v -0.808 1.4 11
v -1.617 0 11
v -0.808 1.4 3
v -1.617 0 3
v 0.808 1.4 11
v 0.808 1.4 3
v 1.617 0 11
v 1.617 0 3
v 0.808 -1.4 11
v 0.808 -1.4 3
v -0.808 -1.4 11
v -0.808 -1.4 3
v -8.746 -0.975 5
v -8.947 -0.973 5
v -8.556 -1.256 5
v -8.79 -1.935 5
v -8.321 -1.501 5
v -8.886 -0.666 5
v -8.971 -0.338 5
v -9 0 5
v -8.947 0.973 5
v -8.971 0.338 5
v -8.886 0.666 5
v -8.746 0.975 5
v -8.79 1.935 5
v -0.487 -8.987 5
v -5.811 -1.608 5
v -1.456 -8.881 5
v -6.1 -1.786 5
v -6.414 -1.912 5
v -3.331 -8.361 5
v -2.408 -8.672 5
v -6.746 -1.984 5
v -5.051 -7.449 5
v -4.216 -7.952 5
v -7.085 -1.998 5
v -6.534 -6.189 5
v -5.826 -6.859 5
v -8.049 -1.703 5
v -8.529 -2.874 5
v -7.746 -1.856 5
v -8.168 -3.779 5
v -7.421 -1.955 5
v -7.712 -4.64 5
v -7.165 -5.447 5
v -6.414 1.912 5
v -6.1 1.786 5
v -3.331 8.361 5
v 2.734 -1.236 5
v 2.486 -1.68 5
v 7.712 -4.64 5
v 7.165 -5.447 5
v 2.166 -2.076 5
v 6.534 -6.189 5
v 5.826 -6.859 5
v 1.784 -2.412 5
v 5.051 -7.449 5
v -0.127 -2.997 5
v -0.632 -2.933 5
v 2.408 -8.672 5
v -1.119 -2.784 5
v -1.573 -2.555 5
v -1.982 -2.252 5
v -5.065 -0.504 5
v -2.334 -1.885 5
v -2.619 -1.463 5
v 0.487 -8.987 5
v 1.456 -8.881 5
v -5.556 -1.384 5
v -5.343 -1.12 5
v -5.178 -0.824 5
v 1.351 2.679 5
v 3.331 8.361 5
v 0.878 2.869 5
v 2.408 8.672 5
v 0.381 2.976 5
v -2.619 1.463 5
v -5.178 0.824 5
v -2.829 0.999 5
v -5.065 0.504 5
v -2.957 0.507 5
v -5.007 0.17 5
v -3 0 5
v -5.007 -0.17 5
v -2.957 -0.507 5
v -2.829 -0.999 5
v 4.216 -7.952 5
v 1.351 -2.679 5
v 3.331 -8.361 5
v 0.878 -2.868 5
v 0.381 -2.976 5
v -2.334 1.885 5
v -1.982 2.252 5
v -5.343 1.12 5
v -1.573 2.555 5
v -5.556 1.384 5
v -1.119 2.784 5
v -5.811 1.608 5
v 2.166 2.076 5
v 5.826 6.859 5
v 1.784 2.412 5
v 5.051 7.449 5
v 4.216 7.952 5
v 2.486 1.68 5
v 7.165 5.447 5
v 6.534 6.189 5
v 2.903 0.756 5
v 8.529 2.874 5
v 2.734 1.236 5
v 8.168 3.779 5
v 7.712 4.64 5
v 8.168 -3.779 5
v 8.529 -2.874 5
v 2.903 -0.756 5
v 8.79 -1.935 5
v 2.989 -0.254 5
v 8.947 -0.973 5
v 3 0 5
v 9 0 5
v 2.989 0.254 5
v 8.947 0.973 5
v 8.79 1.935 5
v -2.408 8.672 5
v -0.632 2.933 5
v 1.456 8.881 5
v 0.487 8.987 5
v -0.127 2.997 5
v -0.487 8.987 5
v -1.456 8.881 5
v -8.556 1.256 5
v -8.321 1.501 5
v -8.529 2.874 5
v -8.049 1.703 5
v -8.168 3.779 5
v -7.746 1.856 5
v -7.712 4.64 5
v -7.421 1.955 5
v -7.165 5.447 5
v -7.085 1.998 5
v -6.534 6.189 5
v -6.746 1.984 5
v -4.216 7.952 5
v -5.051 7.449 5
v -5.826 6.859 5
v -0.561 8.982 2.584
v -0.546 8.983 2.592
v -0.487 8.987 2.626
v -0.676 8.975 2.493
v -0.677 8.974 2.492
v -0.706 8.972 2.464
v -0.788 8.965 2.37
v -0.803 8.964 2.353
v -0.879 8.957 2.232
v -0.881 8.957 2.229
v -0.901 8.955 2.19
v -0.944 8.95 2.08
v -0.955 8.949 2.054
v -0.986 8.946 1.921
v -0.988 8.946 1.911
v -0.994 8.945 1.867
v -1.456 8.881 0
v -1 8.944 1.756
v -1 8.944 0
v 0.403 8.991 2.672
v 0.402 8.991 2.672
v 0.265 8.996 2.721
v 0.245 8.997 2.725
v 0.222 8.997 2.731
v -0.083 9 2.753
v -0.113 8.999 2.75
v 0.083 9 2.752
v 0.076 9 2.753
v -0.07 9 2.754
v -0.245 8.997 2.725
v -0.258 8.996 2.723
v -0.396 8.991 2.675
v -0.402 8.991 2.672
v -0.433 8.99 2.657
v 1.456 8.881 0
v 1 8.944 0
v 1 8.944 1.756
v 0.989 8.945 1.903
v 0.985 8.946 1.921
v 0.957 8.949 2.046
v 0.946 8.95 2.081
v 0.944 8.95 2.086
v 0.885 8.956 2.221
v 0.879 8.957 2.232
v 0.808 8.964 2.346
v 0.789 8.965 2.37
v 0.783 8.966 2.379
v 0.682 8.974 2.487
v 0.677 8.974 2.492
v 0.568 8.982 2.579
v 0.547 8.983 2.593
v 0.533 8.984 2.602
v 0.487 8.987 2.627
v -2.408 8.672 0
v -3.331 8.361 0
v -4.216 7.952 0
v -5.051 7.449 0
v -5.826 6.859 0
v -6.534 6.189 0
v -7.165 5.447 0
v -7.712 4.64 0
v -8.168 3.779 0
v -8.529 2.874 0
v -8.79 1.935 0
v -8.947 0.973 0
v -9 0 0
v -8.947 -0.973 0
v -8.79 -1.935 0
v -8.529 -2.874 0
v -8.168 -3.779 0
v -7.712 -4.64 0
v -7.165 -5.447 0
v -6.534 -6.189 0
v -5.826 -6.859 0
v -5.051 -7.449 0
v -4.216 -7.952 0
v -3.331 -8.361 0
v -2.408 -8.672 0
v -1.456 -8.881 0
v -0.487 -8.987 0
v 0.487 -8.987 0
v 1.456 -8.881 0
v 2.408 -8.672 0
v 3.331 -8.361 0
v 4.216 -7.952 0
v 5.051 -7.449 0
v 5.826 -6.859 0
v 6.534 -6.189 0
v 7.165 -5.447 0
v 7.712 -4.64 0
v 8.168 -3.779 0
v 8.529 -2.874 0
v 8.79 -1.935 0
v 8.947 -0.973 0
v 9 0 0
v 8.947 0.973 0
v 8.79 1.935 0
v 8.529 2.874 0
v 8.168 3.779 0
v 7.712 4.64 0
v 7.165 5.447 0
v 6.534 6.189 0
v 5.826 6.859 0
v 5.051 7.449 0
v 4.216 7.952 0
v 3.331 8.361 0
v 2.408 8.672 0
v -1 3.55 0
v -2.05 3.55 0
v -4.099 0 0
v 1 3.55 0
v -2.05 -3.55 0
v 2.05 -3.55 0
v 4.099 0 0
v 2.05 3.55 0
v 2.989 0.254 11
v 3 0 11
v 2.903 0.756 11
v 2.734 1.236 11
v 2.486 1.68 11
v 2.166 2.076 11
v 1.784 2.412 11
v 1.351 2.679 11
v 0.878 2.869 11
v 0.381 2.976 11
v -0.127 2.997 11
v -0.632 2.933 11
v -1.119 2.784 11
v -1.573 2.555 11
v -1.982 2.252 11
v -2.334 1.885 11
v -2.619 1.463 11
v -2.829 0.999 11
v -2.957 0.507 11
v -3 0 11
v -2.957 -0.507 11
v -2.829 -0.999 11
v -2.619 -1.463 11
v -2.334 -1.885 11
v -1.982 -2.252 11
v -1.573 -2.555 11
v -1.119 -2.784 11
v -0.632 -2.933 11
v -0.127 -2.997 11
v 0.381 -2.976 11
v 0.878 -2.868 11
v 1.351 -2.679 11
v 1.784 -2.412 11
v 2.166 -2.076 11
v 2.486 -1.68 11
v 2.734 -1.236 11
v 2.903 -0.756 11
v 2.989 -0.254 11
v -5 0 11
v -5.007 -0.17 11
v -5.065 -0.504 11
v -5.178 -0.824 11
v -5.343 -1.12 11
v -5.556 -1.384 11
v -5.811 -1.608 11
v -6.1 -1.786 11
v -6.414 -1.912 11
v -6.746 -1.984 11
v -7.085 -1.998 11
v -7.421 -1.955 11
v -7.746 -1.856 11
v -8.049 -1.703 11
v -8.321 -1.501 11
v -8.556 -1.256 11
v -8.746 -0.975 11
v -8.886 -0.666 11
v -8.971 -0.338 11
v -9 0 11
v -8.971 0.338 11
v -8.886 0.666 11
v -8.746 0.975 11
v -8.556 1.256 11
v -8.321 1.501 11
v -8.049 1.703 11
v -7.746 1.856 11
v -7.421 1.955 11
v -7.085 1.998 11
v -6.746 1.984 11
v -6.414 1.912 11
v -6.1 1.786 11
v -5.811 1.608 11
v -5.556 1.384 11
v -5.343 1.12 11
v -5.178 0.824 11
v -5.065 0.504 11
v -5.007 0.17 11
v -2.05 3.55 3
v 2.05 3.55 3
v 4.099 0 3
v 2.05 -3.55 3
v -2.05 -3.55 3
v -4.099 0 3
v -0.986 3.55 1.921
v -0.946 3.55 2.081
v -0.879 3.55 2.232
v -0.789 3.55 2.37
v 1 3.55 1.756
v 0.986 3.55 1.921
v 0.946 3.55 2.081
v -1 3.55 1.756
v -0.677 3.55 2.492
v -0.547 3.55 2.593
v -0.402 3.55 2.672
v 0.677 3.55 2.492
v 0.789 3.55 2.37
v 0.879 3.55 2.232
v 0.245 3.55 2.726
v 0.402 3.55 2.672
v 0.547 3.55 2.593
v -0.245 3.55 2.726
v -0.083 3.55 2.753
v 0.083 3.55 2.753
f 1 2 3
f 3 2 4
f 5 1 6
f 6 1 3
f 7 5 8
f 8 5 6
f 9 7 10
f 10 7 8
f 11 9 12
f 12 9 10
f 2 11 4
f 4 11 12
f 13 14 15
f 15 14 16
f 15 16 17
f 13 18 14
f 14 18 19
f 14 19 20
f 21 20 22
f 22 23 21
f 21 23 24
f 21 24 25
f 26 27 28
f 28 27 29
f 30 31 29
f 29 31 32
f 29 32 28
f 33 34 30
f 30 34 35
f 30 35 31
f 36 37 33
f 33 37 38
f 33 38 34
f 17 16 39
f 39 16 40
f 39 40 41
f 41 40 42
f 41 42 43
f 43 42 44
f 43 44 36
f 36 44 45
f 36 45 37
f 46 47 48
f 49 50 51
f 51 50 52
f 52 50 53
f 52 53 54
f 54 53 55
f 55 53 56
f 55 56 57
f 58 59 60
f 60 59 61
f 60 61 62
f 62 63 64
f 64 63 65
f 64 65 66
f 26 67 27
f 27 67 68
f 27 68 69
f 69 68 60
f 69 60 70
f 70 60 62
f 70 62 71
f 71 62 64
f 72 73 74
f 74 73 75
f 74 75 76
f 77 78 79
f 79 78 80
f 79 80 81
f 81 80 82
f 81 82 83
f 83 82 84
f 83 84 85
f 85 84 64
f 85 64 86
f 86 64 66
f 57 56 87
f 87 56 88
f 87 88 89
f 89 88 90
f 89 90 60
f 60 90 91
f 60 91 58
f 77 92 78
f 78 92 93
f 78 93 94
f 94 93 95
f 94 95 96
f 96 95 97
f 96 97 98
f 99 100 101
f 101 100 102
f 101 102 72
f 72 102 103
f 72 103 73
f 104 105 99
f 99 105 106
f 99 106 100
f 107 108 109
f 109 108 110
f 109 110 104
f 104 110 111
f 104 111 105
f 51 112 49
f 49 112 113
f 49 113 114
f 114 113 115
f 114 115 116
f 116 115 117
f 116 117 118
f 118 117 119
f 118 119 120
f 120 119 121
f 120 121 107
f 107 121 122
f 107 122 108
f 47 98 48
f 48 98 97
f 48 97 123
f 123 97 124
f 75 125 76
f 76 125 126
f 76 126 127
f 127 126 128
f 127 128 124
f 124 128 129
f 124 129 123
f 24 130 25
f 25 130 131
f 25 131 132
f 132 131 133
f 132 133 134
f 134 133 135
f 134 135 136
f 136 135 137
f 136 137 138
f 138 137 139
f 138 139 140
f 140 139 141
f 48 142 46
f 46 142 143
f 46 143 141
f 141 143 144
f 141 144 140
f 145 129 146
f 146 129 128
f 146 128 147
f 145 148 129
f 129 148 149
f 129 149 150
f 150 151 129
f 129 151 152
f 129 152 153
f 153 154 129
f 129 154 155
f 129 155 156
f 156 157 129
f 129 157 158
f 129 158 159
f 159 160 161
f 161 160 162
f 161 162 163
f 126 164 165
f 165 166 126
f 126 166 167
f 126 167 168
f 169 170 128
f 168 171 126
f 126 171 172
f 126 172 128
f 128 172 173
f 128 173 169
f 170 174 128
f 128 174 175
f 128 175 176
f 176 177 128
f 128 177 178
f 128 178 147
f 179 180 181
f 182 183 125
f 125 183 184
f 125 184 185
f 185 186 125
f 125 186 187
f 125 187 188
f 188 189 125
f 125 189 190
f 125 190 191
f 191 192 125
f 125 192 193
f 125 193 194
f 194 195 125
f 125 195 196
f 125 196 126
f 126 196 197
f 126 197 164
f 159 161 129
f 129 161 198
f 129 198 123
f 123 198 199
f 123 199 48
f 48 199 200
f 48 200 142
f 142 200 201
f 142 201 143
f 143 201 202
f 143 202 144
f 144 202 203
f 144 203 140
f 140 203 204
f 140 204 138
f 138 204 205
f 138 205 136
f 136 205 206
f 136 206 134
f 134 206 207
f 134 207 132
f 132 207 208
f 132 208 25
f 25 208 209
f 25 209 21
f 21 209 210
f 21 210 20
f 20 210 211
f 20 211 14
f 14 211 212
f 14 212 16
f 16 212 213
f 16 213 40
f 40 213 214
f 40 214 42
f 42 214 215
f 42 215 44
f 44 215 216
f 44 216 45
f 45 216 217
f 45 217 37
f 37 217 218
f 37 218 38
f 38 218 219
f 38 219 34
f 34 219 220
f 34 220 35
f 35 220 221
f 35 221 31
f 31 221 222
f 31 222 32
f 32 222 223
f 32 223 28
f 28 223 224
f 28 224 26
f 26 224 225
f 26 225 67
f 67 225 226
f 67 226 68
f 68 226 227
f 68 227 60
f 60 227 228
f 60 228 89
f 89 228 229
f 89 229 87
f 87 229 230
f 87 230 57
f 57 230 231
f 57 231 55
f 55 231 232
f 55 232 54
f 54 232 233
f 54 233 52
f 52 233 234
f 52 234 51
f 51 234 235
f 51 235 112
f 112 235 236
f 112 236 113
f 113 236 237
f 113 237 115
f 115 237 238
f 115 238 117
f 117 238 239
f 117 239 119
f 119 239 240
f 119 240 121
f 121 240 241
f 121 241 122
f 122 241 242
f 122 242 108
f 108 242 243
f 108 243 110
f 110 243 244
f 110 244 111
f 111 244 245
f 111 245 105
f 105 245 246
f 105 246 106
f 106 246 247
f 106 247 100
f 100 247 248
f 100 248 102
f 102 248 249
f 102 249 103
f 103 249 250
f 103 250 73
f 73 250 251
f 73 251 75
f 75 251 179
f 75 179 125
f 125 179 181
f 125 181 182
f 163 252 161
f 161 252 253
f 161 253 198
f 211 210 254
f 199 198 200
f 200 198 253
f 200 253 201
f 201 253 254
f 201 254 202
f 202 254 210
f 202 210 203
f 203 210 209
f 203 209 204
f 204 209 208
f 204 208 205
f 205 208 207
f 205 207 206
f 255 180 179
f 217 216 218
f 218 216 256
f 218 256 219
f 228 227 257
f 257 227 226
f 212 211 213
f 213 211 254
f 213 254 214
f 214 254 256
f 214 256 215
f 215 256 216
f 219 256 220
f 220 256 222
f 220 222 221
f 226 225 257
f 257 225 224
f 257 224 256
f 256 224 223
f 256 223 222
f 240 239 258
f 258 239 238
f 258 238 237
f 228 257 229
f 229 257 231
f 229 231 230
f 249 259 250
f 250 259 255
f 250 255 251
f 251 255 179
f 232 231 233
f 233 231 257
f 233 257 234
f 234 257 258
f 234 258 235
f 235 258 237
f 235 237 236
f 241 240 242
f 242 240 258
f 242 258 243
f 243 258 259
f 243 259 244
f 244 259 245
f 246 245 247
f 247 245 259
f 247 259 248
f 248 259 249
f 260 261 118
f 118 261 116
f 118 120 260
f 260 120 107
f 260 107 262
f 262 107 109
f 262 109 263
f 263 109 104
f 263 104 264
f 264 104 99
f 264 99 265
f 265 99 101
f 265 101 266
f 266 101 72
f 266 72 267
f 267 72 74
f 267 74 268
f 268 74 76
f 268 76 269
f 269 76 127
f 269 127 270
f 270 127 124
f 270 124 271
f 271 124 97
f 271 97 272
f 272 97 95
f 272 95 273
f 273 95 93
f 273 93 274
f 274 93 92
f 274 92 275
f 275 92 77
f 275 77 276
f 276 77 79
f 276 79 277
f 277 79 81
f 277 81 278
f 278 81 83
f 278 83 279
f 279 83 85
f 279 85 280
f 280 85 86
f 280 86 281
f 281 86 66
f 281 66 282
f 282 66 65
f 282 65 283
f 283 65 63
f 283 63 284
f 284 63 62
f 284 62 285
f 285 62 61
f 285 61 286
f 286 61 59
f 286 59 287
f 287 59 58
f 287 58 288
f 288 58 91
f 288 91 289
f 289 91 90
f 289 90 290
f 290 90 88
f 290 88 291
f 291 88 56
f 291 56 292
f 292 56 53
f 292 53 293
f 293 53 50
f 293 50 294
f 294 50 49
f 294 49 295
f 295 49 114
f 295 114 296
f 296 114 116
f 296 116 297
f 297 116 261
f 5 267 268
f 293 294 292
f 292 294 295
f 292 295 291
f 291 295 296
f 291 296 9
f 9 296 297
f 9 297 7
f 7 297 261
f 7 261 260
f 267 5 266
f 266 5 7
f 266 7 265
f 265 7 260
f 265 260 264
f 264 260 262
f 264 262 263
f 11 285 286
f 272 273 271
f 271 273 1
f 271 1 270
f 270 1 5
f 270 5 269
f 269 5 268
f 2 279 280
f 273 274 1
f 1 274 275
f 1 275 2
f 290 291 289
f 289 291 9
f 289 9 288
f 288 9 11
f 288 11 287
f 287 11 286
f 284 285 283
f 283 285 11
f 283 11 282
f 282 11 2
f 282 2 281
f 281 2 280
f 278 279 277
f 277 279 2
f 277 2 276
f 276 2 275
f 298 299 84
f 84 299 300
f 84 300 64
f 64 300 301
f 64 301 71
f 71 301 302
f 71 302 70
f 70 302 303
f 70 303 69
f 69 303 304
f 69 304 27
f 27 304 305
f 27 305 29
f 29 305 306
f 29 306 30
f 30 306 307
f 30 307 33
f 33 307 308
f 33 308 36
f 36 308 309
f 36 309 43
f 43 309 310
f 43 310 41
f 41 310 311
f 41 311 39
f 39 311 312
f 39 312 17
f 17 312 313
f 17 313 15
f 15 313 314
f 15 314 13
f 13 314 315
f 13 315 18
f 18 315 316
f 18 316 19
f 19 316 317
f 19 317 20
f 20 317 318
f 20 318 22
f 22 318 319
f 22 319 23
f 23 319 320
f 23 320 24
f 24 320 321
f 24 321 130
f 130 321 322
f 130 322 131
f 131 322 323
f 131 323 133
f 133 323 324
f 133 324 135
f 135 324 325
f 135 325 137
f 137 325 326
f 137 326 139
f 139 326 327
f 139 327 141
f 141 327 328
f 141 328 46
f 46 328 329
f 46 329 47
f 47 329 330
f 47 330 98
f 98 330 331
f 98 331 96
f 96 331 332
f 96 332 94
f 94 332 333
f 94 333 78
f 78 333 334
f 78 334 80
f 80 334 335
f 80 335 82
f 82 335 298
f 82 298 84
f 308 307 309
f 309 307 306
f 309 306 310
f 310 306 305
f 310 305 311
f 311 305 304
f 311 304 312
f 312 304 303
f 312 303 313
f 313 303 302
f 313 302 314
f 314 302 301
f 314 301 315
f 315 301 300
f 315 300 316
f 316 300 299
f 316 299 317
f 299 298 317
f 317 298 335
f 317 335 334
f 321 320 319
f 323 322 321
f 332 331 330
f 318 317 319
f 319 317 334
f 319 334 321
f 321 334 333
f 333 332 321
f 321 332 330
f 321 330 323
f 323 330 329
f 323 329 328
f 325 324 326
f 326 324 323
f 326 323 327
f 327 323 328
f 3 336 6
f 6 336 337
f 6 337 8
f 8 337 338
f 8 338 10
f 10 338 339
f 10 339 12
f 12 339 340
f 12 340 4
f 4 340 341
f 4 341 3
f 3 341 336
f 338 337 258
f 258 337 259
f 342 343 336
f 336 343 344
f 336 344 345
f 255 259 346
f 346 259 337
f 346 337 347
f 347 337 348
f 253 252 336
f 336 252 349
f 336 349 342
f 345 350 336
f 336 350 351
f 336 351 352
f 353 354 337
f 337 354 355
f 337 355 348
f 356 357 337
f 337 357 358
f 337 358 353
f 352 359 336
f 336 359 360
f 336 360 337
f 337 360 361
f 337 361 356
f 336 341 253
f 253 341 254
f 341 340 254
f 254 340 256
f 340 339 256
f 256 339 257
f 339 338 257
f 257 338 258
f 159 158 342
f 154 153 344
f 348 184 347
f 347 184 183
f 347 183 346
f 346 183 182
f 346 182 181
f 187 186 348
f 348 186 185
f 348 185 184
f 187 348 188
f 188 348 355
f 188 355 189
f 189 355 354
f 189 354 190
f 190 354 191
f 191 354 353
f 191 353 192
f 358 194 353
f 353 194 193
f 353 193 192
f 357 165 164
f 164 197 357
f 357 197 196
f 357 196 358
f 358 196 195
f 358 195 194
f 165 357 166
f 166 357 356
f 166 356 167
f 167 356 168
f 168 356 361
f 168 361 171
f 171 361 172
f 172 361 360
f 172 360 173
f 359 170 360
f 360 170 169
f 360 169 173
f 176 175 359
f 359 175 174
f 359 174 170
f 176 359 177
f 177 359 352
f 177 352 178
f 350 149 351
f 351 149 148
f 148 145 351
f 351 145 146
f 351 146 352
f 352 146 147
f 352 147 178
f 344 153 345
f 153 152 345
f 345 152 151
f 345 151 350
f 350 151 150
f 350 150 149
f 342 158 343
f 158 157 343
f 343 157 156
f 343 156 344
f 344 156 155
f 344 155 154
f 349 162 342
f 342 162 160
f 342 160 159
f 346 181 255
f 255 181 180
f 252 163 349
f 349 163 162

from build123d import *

# Parameters (mm, degrees)
SKETCH1_R           = 9
BOSS_EXTRUDE1_DEPTH = 5
SKETCH2_R           = 3
SKETCH2_R_2         = 2
BOSS_EXTRUDE2_DEPTH = 6
CUT_EXTRUDE1_DEPTH  = 17.822603841
CUT_EXTRUDE2_DEPTH  = 3
CUT_EXTRUDE3_DEPTH  = 8


with BuildPart() as part:
    # Sketch1 → Boss-Extrude1 (new body)
    with BuildSketch(Plane.XY):
        Circle(SKETCH1_R)
    extrude(amount=BOSS_EXTRUDE1_DEPTH)

    # Sketch2 → Boss-Extrude2 (add)
    with BuildSketch(Plane.XY.offset(5)):
        Circle(SKETCH2_R)
        with Locations(Location((-7, 0, 0), (0, 0, 179.999350333))):
            Circle(SKETCH2_R_2)
    extrude(amount=BOSS_EXTRUDE2_DEPTH)

    # Sketch3 → Cut-Extrude1 (cut, through all)
    with BuildSketch(Plane.XY.offset(11)):
        Polygon((-1.616580754, 0), (-0.808290377, -1.4), (0.808290377, -1.4), (1.616580754, 0), (0.808290377, 1.4), (-0.808290377, 1.4), align=None)
    extrude(amount=-CUT_EXTRUDE1_DEPTH, mode=Mode.SUBTRACT)

    # Sketch4 → Cut-Extrude2 (cut)
    with BuildSketch(Plane(origin=(0, 0, 0), x_dir=(-1, 0, 0), z_dir=(0, 0, -1))):
        Polygon((-4.099186911, 0), (-2.049593456, -3.55), (2.049593456, -3.55), (4.099186911, 0), (2.049593456, 3.55), (-2.049593456, 3.55), align=None)
    extrude(amount=-CUT_EXTRUDE2_DEPTH, mode=Mode.SUBTRACT)

    # Sketch5 → Cut-Extrude3 (cut)
    with BuildSketch(Plane.XZ.offset(-3.55)):
        with BuildLine():
            Line((1, 1.756249669), (1, -1.040433474))
            Line((1, -1.040433474), (-1, -1.040433474))
            Line((-1, -1.040433474), (-1, 1.756249669))
            ThreePointArc((-1, 1.756249669), (0, 2.756249669), (1, 1.756249669))
        make_face()
    extrude(amount=-CUT_EXTRUDE3_DEPTH, mode=Mode.SUBTRACT)


solid = part.part
